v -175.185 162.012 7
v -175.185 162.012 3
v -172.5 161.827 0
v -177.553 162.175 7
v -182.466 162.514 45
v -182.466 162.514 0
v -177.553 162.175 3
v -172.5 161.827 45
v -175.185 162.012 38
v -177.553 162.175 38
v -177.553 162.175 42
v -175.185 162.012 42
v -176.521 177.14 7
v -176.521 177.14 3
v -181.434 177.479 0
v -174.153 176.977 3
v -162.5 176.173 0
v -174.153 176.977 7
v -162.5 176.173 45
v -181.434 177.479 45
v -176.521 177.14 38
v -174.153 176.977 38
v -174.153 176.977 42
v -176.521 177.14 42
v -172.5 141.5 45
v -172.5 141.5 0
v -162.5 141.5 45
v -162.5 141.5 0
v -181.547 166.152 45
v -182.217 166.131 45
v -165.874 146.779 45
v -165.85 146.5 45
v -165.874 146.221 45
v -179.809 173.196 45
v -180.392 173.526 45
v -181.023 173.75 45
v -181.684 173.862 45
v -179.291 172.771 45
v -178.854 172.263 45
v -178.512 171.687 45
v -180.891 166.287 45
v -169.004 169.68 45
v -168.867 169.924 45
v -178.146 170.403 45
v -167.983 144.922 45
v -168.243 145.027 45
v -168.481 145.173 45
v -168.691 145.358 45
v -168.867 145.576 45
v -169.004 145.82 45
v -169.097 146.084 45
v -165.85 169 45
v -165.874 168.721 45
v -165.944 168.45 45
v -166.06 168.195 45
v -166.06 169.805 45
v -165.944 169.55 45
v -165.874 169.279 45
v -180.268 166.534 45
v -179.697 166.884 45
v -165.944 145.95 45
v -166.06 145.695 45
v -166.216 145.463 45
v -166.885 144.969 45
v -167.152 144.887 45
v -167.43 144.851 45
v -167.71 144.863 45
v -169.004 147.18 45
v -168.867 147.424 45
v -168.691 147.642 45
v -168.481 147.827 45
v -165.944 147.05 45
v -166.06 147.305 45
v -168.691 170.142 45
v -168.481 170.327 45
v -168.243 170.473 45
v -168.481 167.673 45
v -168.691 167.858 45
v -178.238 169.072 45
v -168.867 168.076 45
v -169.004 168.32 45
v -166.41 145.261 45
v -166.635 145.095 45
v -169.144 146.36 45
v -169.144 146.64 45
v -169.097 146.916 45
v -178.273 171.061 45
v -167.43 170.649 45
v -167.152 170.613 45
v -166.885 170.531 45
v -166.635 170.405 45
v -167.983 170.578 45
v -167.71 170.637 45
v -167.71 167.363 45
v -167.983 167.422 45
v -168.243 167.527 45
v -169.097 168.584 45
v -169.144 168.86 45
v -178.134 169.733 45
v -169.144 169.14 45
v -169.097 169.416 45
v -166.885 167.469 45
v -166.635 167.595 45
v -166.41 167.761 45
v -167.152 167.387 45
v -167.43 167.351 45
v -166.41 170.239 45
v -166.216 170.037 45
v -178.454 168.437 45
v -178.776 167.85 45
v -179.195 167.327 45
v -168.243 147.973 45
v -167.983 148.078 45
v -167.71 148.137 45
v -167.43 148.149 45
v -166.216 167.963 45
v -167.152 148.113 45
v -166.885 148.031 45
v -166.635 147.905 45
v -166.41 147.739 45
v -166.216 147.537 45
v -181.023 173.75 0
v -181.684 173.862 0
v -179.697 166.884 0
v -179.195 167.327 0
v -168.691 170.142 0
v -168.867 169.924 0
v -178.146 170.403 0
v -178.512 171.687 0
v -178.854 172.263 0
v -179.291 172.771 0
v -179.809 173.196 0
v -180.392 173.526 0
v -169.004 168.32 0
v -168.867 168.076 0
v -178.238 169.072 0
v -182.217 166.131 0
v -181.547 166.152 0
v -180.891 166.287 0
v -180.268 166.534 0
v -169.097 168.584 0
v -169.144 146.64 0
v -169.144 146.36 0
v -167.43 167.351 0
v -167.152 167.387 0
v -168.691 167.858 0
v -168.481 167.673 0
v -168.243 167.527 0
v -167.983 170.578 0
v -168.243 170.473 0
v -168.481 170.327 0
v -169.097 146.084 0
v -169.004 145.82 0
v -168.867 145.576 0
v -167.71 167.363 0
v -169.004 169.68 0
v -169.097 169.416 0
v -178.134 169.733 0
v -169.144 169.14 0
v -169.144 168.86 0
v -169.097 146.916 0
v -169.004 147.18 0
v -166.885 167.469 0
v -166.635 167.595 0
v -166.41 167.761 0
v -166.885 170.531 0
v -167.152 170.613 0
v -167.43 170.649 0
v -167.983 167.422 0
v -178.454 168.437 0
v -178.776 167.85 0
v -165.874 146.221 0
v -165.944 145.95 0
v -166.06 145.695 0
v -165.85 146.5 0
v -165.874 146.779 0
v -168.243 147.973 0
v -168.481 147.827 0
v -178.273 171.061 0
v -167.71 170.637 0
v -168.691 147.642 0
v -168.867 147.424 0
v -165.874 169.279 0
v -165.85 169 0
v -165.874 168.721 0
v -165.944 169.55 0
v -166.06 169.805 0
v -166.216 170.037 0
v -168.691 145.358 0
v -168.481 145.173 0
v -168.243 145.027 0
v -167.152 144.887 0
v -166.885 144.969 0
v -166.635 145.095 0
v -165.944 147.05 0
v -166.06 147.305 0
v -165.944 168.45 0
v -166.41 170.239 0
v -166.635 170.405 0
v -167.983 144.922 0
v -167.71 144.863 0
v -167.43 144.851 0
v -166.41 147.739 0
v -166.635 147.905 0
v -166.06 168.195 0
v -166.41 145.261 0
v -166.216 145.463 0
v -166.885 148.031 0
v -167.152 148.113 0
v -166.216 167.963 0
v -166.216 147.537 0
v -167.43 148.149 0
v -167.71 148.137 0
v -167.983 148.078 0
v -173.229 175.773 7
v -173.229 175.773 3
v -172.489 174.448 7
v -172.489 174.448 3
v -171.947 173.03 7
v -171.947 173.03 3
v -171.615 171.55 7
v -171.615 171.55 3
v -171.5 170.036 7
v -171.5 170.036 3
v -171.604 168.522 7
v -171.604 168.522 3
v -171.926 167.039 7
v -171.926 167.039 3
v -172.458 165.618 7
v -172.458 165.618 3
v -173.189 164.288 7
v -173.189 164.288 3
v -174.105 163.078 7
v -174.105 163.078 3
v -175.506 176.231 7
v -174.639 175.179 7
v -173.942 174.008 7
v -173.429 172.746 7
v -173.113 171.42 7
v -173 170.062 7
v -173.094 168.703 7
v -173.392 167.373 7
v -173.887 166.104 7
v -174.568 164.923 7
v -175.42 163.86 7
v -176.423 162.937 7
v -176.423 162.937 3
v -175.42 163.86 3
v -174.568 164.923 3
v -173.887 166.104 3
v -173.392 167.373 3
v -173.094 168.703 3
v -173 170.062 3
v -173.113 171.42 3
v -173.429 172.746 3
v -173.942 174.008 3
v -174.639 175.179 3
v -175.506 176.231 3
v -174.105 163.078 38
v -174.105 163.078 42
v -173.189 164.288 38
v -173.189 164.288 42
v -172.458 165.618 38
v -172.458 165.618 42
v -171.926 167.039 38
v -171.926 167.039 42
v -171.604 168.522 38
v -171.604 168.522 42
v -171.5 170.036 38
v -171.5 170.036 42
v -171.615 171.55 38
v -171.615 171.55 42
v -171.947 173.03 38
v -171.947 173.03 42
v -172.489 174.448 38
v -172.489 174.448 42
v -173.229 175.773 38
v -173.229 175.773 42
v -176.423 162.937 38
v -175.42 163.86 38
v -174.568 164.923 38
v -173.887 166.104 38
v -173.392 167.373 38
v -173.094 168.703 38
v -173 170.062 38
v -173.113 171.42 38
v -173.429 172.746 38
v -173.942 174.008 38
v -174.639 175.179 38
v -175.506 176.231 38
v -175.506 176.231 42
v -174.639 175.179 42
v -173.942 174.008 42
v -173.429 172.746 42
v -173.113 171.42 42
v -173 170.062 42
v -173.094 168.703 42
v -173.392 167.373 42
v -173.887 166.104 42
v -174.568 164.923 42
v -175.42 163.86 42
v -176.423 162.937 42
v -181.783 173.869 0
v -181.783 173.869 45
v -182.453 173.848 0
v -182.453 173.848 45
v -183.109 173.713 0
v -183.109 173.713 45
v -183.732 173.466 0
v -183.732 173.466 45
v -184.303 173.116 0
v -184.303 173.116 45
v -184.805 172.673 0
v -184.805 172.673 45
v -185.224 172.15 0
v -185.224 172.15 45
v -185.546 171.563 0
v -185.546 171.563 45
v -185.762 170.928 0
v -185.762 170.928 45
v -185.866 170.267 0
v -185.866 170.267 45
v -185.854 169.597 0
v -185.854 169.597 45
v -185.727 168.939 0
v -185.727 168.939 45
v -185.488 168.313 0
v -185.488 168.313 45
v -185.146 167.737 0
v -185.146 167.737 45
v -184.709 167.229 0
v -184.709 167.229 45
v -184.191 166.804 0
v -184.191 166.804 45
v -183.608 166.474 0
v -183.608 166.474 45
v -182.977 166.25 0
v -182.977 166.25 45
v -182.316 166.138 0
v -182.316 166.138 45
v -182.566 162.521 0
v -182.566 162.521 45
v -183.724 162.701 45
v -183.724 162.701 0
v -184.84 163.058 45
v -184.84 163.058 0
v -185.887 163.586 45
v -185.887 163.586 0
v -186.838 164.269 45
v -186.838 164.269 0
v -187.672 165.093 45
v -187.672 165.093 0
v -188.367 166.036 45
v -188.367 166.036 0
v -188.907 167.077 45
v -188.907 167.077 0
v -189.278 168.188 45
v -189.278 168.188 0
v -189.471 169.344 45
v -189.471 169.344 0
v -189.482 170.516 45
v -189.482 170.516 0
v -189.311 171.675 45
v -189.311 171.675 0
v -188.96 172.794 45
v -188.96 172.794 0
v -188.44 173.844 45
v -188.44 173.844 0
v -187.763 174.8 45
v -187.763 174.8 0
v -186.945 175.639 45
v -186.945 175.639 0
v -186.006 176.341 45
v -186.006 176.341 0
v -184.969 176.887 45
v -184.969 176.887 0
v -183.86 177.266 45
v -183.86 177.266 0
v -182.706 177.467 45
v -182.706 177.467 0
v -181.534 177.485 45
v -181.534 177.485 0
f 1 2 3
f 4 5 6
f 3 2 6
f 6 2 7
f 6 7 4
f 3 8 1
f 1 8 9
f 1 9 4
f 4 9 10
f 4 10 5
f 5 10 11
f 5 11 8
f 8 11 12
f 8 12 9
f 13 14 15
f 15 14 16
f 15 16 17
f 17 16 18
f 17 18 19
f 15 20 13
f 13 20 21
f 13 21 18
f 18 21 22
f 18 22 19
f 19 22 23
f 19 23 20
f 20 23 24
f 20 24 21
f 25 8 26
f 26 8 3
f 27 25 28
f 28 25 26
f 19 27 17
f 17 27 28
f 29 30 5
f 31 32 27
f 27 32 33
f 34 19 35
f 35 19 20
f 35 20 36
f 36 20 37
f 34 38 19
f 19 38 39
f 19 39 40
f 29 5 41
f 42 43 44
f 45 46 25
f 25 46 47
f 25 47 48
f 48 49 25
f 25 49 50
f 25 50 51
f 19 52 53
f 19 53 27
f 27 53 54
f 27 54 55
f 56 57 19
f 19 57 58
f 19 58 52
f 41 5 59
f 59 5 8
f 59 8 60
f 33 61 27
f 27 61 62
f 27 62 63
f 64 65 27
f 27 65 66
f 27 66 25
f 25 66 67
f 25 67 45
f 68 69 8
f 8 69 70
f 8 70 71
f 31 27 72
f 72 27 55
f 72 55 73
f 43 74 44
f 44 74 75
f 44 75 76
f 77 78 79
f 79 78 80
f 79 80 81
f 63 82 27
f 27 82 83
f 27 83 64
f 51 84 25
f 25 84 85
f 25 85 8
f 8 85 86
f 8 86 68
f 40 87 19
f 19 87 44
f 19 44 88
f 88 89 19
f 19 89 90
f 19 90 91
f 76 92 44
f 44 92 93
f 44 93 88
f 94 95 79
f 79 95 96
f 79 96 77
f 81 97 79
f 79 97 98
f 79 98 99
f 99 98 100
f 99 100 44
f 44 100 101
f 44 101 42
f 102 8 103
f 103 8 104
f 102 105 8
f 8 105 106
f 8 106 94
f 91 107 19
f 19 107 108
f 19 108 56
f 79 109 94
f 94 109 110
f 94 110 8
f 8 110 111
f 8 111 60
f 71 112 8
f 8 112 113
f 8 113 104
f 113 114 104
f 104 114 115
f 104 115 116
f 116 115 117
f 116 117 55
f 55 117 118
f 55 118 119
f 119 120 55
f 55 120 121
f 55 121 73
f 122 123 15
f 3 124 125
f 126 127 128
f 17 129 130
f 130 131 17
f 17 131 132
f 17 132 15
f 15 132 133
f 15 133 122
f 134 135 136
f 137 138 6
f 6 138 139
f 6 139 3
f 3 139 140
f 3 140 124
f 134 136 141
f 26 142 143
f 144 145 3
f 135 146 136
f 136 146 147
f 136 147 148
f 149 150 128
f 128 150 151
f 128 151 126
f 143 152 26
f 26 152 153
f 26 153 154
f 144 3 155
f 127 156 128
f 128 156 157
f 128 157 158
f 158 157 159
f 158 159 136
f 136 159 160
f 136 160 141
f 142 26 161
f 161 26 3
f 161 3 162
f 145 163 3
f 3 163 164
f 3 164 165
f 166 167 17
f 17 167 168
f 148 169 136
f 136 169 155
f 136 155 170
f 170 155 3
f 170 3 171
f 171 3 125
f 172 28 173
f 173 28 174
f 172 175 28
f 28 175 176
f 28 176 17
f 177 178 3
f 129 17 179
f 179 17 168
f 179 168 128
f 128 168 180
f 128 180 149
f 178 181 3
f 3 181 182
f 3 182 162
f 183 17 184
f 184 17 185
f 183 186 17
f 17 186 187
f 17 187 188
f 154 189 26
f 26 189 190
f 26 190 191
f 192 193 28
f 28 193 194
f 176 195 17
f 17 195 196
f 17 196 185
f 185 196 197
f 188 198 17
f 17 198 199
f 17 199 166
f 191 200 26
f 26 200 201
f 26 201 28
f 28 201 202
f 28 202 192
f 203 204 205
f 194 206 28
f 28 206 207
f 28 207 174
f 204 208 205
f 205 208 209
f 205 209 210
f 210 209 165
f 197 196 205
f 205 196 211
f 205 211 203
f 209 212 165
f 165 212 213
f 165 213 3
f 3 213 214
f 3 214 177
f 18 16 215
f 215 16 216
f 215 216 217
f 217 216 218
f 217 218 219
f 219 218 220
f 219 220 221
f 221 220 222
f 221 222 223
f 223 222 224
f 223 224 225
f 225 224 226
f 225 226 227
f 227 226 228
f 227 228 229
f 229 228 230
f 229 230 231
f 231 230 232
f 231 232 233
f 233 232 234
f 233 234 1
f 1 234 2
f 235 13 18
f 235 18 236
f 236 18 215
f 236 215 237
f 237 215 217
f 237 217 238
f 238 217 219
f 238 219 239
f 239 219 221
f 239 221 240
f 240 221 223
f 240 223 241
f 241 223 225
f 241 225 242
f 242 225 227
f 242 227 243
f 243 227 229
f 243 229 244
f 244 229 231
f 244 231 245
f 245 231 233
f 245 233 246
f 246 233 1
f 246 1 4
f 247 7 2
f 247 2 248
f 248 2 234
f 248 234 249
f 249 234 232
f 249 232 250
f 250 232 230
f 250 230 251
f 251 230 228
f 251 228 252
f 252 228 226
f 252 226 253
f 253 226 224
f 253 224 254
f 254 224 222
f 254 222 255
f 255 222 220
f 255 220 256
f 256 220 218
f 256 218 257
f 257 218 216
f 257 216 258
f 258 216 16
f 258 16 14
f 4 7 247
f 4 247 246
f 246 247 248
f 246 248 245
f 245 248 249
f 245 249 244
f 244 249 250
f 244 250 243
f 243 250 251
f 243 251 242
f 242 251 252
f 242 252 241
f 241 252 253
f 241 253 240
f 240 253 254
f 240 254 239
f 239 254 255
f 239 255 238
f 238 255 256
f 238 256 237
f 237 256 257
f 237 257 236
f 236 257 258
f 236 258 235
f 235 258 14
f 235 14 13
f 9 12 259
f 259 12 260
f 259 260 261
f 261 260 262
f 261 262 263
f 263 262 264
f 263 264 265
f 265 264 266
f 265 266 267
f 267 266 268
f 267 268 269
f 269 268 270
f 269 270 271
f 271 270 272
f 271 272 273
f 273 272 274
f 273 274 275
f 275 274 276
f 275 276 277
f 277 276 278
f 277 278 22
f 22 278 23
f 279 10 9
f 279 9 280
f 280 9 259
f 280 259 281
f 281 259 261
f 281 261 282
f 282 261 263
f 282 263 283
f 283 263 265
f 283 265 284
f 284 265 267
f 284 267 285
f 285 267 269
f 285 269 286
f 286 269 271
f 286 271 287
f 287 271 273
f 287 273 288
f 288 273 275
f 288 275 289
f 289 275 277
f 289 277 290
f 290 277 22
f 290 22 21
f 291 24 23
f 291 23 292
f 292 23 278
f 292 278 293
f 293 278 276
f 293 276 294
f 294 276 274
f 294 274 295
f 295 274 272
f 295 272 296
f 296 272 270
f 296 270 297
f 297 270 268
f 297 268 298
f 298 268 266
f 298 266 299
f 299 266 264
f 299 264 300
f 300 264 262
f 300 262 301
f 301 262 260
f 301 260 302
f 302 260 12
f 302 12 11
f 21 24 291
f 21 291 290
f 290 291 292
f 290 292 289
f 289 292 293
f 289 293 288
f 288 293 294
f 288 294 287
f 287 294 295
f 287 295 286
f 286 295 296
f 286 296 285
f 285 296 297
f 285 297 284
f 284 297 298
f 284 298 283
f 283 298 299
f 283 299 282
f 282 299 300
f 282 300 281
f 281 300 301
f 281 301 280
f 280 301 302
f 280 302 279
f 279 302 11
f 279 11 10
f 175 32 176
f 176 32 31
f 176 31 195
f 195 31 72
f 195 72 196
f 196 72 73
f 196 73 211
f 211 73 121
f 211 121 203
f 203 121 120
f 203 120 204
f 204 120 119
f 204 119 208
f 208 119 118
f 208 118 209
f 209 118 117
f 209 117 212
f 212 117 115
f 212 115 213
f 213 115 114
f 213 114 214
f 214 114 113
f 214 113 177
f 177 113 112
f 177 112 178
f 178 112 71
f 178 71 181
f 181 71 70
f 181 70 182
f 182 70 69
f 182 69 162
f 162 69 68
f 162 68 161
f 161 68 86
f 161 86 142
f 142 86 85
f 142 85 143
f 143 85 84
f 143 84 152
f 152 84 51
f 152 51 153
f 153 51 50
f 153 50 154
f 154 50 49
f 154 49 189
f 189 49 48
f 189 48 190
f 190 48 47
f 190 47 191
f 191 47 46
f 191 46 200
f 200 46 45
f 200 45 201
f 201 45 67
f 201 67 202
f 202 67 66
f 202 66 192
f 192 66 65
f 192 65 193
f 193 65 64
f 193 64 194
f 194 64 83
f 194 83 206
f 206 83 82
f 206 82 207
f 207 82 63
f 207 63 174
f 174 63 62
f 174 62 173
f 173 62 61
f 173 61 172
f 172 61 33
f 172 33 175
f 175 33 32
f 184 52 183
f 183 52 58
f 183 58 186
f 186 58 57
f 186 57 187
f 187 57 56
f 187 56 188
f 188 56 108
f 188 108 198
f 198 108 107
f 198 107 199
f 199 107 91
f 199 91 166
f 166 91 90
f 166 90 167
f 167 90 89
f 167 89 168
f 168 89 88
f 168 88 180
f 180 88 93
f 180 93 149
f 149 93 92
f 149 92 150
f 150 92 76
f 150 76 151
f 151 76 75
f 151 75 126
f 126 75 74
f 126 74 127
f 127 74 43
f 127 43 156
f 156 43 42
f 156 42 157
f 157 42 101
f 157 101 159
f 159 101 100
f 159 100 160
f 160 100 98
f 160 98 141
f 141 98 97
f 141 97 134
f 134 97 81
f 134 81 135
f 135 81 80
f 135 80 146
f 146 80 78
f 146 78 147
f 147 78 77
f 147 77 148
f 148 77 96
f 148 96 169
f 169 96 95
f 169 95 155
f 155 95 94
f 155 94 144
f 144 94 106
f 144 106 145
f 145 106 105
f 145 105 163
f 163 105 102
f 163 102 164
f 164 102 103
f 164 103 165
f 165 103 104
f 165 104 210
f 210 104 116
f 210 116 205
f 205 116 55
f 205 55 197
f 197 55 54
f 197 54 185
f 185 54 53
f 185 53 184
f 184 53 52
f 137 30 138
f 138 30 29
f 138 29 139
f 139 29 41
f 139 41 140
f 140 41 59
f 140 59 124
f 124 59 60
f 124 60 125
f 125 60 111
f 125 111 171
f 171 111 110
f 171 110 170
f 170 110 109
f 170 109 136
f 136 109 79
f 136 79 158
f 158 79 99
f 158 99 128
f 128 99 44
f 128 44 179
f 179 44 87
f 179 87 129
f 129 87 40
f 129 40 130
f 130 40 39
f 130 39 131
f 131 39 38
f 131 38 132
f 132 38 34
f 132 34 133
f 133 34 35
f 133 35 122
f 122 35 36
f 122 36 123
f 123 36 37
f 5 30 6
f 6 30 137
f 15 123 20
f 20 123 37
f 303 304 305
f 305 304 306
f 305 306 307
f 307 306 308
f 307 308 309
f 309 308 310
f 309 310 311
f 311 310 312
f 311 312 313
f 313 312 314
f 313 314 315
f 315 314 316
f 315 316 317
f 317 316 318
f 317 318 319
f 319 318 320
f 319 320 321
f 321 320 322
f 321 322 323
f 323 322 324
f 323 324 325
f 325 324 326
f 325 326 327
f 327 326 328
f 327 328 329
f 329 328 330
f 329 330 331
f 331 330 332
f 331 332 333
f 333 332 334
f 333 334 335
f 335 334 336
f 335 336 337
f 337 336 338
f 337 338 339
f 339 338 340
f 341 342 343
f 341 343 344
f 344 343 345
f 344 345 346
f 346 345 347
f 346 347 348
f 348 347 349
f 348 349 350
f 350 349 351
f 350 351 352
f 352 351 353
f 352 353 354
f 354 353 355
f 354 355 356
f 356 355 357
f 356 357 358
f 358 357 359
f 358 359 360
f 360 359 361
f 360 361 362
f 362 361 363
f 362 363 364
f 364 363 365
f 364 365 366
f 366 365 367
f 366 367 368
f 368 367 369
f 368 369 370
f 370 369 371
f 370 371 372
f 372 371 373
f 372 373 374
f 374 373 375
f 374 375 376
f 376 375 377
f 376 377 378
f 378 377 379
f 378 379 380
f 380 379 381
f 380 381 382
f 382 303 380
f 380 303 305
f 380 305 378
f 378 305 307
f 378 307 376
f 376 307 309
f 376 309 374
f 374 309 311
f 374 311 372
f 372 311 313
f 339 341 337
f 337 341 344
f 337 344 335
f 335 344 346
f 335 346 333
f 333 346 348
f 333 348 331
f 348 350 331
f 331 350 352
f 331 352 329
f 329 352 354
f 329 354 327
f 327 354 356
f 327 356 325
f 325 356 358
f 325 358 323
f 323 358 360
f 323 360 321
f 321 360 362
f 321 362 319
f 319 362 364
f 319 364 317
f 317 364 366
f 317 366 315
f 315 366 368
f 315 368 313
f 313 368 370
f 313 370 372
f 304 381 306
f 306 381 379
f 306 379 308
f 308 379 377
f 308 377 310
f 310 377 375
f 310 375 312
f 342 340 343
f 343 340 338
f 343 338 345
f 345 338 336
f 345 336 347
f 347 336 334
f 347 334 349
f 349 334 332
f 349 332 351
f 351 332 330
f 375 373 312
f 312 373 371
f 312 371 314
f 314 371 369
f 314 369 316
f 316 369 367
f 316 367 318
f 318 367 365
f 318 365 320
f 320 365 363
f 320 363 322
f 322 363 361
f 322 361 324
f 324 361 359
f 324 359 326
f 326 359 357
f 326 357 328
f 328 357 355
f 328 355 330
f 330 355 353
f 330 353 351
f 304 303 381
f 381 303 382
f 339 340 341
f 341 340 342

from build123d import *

# Parameters (mm, degrees)
BOSS_EXTRUDE1_DEPTH   = 45
CUT_EXTRUDE1_START    = -5
CUT_EXTRUDE1_DEPTH    = 2
M4X0_7_TAPPED_HOLE1_D = 3.3
SKETCH5_R             = 7.5
BOSS_EXTRUDE2_DEPTH   = 45
SKETCH6_R             = 3.875
CUT_EXTRUDE2_DEPTH    = 46
CUT_EXTRUDE3_DEPTH    = 46


with BuildPart() as part:
    # Sketch1 → Boss-Extrude1 (new body)
    with BuildSketch(Plane.XY):
        with BuildLine():
            Line((-182.516015687, 162.517772537), (-172.5, 161.827012834))
            Line((-172.5, 161.827012834), (-172.5, 141.5))
            Line((-172.5, 141.5), (-162.5, 141.5))
            Line((-162.5, 141.5), (-162.5, 176.172987166))
            Line((-162.5, 176.172987166), (-181.483984313, 177.482227463))
            ThreePointArc((-181.483984313, 177.482227463), (-174.517772537, 169.483984313), (-182.516015687, 162.517772537))
        make_face()
    extrude(amount=BOSS_EXTRUDE1_DEPTH)

    # Sketch2 → Cut-Extrude1 (cut, symmetric)
    with BuildSketch(Plane(origin=(0, 0, 0), x_dir=(-1, 0, 0), z_dir=(0, 0, -1)).offset(CUT_EXTRUDE1_START)):
        with BuildLine():
            ThreePointArc((176.520836095, 177.139941379), (173.021327044, 169.380781175), (177.552867469, 162.175486453))
            ThreePointArc((177.552867469, 162.175486453), (177.834315887, 161.15284928), (176.811678714, 160.871400862))
            ThreePointArc((176.811678714, 160.871400862), (171.524881552, 169.277578038), (175.60764211, 178.329931609))
            ThreePointArc((175.60764211, 178.329931609), (176.659234217, 178.191533486), (176.520836095, 177.139941379))
        make_face()
    cut_extrude1 = extrude(amount=CUT_EXTRUDE1_DEPTH, both=True, mode=Mode.SUBTRACT)

    # Mirror1: Cut-Extrude1 across plane
    add(cut_extrude1.mirror(Plane(origin=(0, 0, 22.5), x_dir=(1, 0, 0), z_dir=(0, 0, -1))), mode=Mode.SUBTRACT)

    # M4x0.7 Tapped Hole1 (through all)
    with Locations(Plane.XY.offset(45)):
        with Locations((-167.5, 169), (-167.5, 146.5)):
            Hole(M4X0_7_TAPPED_HOLE1_D / 2)

    # Sketch5 → Boss-Extrude2 (add, through all)
    with BuildSketch(Plane.XY.offset(45)):
        with Locations((-182, 170)):
            Circle(SKETCH5_R)
    extrude(amount=-BOSS_EXTRUDE2_DEPTH)

    # Sketch6 → Cut-Extrude2 (cut, through all)
    with BuildSketch(Plane.XY.offset(45)):
        with Locations((-182, 170)):
            Circle(SKETCH6_R)
    extrude(amount=-CUT_EXTRUDE2_DEPTH, mode=Mode.SUBTRACT)

    # Sketch7 → Cut-Extrude3 (cut, through all)
    with BuildSketch(Plane(origin=(0, 0, 0), x_dir=(-1, 0, 0), z_dir=(0, 0, -1))):
        Polygon((181.434102796, 177.478787359), (182.466134171, 162.514332432), (182.565897204, 162.521212641), (181.533865829, 177.485667568), align=None)
    extrude(amount=-CUT_EXTRUDE3_DEPTH, mode=Mode.SUBTRACT)


solid = part.part
